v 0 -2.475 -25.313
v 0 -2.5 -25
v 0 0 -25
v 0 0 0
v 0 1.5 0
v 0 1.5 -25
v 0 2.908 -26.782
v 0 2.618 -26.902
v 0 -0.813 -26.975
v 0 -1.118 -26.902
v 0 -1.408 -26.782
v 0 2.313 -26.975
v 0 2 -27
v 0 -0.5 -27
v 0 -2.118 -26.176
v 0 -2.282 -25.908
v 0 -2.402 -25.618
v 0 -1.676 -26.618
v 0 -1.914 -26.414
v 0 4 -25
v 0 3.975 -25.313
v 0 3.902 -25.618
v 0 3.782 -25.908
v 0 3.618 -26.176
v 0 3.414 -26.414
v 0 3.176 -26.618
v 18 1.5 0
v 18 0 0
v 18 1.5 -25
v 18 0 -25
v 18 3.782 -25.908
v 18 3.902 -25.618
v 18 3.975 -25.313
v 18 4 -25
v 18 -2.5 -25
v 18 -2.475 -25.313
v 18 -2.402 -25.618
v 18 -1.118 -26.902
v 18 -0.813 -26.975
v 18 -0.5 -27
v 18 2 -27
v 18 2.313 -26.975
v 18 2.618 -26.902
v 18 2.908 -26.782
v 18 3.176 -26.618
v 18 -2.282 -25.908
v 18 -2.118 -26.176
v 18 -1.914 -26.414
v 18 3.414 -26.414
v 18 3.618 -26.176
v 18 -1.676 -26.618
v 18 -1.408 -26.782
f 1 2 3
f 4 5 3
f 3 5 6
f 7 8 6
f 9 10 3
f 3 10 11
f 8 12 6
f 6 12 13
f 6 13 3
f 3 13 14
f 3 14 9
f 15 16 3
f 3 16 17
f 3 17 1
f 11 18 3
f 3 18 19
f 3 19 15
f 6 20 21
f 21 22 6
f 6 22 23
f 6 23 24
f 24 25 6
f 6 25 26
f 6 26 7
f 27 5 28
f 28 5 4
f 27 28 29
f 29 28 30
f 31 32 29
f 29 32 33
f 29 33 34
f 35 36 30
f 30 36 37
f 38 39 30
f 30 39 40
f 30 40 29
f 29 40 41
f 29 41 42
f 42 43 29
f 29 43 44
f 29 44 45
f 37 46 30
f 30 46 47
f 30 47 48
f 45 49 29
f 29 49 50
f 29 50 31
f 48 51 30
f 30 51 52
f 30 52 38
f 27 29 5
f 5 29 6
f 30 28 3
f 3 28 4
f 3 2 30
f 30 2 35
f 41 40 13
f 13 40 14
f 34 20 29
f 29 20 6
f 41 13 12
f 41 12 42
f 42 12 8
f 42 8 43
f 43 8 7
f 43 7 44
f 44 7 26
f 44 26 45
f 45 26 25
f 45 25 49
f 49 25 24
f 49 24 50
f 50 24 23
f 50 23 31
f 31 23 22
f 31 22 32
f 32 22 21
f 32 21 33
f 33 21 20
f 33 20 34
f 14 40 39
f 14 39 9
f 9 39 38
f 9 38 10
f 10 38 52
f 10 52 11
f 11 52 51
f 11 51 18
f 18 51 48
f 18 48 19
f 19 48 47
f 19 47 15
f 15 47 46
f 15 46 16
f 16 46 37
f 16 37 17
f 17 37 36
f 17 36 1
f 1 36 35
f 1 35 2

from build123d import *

# Parameters (mm, degrees)
SKETCH1_W           = 18
SKETCH1_H           = 25
BOSS_EXTRUDE1_DEPTH = 1.5
BOSS_EXTRUDE2_DEPTH = 2
FILLET1_R           = 2


with BuildPart() as part:
    # Sketch1 → Boss-Extrude1 (new body)
    with BuildSketch(Plane(origin=(0, 0, 0), x_dir=(1, 0, 0), z_dir=(0, 1, 0))):
        with Locations((9, 12.5)):
            Rectangle(SKETCH1_W, SKETCH1_H)
    extrude(amount=BOSS_EXTRUDE1_DEPTH)

    # Sketch2 → Boss-Extrude2 (add)
    with BuildSketch(Plane(origin=(0, 0, -25), x_dir=(-1, 0, 0), z_dir=(0, 0, -1))):
        Polygon((-18, 0), (-18, -2.5), (0, -2.5), (0, 4), (-18, 4), align=None)
    extrude(amount=BOSS_EXTRUDE2_DEPTH)

    # Fillet1
    fillet1_edges = [part.edges().sort_by_distance(p)[0] for p in [
        (9, 4, -27),
        (9, -2.5, -27),
    ]]
    fillet(fillet1_edges, radius=FILLET1_R - 0.0001)  # a hair under: the kernel refuses the full size


solid = part.part
